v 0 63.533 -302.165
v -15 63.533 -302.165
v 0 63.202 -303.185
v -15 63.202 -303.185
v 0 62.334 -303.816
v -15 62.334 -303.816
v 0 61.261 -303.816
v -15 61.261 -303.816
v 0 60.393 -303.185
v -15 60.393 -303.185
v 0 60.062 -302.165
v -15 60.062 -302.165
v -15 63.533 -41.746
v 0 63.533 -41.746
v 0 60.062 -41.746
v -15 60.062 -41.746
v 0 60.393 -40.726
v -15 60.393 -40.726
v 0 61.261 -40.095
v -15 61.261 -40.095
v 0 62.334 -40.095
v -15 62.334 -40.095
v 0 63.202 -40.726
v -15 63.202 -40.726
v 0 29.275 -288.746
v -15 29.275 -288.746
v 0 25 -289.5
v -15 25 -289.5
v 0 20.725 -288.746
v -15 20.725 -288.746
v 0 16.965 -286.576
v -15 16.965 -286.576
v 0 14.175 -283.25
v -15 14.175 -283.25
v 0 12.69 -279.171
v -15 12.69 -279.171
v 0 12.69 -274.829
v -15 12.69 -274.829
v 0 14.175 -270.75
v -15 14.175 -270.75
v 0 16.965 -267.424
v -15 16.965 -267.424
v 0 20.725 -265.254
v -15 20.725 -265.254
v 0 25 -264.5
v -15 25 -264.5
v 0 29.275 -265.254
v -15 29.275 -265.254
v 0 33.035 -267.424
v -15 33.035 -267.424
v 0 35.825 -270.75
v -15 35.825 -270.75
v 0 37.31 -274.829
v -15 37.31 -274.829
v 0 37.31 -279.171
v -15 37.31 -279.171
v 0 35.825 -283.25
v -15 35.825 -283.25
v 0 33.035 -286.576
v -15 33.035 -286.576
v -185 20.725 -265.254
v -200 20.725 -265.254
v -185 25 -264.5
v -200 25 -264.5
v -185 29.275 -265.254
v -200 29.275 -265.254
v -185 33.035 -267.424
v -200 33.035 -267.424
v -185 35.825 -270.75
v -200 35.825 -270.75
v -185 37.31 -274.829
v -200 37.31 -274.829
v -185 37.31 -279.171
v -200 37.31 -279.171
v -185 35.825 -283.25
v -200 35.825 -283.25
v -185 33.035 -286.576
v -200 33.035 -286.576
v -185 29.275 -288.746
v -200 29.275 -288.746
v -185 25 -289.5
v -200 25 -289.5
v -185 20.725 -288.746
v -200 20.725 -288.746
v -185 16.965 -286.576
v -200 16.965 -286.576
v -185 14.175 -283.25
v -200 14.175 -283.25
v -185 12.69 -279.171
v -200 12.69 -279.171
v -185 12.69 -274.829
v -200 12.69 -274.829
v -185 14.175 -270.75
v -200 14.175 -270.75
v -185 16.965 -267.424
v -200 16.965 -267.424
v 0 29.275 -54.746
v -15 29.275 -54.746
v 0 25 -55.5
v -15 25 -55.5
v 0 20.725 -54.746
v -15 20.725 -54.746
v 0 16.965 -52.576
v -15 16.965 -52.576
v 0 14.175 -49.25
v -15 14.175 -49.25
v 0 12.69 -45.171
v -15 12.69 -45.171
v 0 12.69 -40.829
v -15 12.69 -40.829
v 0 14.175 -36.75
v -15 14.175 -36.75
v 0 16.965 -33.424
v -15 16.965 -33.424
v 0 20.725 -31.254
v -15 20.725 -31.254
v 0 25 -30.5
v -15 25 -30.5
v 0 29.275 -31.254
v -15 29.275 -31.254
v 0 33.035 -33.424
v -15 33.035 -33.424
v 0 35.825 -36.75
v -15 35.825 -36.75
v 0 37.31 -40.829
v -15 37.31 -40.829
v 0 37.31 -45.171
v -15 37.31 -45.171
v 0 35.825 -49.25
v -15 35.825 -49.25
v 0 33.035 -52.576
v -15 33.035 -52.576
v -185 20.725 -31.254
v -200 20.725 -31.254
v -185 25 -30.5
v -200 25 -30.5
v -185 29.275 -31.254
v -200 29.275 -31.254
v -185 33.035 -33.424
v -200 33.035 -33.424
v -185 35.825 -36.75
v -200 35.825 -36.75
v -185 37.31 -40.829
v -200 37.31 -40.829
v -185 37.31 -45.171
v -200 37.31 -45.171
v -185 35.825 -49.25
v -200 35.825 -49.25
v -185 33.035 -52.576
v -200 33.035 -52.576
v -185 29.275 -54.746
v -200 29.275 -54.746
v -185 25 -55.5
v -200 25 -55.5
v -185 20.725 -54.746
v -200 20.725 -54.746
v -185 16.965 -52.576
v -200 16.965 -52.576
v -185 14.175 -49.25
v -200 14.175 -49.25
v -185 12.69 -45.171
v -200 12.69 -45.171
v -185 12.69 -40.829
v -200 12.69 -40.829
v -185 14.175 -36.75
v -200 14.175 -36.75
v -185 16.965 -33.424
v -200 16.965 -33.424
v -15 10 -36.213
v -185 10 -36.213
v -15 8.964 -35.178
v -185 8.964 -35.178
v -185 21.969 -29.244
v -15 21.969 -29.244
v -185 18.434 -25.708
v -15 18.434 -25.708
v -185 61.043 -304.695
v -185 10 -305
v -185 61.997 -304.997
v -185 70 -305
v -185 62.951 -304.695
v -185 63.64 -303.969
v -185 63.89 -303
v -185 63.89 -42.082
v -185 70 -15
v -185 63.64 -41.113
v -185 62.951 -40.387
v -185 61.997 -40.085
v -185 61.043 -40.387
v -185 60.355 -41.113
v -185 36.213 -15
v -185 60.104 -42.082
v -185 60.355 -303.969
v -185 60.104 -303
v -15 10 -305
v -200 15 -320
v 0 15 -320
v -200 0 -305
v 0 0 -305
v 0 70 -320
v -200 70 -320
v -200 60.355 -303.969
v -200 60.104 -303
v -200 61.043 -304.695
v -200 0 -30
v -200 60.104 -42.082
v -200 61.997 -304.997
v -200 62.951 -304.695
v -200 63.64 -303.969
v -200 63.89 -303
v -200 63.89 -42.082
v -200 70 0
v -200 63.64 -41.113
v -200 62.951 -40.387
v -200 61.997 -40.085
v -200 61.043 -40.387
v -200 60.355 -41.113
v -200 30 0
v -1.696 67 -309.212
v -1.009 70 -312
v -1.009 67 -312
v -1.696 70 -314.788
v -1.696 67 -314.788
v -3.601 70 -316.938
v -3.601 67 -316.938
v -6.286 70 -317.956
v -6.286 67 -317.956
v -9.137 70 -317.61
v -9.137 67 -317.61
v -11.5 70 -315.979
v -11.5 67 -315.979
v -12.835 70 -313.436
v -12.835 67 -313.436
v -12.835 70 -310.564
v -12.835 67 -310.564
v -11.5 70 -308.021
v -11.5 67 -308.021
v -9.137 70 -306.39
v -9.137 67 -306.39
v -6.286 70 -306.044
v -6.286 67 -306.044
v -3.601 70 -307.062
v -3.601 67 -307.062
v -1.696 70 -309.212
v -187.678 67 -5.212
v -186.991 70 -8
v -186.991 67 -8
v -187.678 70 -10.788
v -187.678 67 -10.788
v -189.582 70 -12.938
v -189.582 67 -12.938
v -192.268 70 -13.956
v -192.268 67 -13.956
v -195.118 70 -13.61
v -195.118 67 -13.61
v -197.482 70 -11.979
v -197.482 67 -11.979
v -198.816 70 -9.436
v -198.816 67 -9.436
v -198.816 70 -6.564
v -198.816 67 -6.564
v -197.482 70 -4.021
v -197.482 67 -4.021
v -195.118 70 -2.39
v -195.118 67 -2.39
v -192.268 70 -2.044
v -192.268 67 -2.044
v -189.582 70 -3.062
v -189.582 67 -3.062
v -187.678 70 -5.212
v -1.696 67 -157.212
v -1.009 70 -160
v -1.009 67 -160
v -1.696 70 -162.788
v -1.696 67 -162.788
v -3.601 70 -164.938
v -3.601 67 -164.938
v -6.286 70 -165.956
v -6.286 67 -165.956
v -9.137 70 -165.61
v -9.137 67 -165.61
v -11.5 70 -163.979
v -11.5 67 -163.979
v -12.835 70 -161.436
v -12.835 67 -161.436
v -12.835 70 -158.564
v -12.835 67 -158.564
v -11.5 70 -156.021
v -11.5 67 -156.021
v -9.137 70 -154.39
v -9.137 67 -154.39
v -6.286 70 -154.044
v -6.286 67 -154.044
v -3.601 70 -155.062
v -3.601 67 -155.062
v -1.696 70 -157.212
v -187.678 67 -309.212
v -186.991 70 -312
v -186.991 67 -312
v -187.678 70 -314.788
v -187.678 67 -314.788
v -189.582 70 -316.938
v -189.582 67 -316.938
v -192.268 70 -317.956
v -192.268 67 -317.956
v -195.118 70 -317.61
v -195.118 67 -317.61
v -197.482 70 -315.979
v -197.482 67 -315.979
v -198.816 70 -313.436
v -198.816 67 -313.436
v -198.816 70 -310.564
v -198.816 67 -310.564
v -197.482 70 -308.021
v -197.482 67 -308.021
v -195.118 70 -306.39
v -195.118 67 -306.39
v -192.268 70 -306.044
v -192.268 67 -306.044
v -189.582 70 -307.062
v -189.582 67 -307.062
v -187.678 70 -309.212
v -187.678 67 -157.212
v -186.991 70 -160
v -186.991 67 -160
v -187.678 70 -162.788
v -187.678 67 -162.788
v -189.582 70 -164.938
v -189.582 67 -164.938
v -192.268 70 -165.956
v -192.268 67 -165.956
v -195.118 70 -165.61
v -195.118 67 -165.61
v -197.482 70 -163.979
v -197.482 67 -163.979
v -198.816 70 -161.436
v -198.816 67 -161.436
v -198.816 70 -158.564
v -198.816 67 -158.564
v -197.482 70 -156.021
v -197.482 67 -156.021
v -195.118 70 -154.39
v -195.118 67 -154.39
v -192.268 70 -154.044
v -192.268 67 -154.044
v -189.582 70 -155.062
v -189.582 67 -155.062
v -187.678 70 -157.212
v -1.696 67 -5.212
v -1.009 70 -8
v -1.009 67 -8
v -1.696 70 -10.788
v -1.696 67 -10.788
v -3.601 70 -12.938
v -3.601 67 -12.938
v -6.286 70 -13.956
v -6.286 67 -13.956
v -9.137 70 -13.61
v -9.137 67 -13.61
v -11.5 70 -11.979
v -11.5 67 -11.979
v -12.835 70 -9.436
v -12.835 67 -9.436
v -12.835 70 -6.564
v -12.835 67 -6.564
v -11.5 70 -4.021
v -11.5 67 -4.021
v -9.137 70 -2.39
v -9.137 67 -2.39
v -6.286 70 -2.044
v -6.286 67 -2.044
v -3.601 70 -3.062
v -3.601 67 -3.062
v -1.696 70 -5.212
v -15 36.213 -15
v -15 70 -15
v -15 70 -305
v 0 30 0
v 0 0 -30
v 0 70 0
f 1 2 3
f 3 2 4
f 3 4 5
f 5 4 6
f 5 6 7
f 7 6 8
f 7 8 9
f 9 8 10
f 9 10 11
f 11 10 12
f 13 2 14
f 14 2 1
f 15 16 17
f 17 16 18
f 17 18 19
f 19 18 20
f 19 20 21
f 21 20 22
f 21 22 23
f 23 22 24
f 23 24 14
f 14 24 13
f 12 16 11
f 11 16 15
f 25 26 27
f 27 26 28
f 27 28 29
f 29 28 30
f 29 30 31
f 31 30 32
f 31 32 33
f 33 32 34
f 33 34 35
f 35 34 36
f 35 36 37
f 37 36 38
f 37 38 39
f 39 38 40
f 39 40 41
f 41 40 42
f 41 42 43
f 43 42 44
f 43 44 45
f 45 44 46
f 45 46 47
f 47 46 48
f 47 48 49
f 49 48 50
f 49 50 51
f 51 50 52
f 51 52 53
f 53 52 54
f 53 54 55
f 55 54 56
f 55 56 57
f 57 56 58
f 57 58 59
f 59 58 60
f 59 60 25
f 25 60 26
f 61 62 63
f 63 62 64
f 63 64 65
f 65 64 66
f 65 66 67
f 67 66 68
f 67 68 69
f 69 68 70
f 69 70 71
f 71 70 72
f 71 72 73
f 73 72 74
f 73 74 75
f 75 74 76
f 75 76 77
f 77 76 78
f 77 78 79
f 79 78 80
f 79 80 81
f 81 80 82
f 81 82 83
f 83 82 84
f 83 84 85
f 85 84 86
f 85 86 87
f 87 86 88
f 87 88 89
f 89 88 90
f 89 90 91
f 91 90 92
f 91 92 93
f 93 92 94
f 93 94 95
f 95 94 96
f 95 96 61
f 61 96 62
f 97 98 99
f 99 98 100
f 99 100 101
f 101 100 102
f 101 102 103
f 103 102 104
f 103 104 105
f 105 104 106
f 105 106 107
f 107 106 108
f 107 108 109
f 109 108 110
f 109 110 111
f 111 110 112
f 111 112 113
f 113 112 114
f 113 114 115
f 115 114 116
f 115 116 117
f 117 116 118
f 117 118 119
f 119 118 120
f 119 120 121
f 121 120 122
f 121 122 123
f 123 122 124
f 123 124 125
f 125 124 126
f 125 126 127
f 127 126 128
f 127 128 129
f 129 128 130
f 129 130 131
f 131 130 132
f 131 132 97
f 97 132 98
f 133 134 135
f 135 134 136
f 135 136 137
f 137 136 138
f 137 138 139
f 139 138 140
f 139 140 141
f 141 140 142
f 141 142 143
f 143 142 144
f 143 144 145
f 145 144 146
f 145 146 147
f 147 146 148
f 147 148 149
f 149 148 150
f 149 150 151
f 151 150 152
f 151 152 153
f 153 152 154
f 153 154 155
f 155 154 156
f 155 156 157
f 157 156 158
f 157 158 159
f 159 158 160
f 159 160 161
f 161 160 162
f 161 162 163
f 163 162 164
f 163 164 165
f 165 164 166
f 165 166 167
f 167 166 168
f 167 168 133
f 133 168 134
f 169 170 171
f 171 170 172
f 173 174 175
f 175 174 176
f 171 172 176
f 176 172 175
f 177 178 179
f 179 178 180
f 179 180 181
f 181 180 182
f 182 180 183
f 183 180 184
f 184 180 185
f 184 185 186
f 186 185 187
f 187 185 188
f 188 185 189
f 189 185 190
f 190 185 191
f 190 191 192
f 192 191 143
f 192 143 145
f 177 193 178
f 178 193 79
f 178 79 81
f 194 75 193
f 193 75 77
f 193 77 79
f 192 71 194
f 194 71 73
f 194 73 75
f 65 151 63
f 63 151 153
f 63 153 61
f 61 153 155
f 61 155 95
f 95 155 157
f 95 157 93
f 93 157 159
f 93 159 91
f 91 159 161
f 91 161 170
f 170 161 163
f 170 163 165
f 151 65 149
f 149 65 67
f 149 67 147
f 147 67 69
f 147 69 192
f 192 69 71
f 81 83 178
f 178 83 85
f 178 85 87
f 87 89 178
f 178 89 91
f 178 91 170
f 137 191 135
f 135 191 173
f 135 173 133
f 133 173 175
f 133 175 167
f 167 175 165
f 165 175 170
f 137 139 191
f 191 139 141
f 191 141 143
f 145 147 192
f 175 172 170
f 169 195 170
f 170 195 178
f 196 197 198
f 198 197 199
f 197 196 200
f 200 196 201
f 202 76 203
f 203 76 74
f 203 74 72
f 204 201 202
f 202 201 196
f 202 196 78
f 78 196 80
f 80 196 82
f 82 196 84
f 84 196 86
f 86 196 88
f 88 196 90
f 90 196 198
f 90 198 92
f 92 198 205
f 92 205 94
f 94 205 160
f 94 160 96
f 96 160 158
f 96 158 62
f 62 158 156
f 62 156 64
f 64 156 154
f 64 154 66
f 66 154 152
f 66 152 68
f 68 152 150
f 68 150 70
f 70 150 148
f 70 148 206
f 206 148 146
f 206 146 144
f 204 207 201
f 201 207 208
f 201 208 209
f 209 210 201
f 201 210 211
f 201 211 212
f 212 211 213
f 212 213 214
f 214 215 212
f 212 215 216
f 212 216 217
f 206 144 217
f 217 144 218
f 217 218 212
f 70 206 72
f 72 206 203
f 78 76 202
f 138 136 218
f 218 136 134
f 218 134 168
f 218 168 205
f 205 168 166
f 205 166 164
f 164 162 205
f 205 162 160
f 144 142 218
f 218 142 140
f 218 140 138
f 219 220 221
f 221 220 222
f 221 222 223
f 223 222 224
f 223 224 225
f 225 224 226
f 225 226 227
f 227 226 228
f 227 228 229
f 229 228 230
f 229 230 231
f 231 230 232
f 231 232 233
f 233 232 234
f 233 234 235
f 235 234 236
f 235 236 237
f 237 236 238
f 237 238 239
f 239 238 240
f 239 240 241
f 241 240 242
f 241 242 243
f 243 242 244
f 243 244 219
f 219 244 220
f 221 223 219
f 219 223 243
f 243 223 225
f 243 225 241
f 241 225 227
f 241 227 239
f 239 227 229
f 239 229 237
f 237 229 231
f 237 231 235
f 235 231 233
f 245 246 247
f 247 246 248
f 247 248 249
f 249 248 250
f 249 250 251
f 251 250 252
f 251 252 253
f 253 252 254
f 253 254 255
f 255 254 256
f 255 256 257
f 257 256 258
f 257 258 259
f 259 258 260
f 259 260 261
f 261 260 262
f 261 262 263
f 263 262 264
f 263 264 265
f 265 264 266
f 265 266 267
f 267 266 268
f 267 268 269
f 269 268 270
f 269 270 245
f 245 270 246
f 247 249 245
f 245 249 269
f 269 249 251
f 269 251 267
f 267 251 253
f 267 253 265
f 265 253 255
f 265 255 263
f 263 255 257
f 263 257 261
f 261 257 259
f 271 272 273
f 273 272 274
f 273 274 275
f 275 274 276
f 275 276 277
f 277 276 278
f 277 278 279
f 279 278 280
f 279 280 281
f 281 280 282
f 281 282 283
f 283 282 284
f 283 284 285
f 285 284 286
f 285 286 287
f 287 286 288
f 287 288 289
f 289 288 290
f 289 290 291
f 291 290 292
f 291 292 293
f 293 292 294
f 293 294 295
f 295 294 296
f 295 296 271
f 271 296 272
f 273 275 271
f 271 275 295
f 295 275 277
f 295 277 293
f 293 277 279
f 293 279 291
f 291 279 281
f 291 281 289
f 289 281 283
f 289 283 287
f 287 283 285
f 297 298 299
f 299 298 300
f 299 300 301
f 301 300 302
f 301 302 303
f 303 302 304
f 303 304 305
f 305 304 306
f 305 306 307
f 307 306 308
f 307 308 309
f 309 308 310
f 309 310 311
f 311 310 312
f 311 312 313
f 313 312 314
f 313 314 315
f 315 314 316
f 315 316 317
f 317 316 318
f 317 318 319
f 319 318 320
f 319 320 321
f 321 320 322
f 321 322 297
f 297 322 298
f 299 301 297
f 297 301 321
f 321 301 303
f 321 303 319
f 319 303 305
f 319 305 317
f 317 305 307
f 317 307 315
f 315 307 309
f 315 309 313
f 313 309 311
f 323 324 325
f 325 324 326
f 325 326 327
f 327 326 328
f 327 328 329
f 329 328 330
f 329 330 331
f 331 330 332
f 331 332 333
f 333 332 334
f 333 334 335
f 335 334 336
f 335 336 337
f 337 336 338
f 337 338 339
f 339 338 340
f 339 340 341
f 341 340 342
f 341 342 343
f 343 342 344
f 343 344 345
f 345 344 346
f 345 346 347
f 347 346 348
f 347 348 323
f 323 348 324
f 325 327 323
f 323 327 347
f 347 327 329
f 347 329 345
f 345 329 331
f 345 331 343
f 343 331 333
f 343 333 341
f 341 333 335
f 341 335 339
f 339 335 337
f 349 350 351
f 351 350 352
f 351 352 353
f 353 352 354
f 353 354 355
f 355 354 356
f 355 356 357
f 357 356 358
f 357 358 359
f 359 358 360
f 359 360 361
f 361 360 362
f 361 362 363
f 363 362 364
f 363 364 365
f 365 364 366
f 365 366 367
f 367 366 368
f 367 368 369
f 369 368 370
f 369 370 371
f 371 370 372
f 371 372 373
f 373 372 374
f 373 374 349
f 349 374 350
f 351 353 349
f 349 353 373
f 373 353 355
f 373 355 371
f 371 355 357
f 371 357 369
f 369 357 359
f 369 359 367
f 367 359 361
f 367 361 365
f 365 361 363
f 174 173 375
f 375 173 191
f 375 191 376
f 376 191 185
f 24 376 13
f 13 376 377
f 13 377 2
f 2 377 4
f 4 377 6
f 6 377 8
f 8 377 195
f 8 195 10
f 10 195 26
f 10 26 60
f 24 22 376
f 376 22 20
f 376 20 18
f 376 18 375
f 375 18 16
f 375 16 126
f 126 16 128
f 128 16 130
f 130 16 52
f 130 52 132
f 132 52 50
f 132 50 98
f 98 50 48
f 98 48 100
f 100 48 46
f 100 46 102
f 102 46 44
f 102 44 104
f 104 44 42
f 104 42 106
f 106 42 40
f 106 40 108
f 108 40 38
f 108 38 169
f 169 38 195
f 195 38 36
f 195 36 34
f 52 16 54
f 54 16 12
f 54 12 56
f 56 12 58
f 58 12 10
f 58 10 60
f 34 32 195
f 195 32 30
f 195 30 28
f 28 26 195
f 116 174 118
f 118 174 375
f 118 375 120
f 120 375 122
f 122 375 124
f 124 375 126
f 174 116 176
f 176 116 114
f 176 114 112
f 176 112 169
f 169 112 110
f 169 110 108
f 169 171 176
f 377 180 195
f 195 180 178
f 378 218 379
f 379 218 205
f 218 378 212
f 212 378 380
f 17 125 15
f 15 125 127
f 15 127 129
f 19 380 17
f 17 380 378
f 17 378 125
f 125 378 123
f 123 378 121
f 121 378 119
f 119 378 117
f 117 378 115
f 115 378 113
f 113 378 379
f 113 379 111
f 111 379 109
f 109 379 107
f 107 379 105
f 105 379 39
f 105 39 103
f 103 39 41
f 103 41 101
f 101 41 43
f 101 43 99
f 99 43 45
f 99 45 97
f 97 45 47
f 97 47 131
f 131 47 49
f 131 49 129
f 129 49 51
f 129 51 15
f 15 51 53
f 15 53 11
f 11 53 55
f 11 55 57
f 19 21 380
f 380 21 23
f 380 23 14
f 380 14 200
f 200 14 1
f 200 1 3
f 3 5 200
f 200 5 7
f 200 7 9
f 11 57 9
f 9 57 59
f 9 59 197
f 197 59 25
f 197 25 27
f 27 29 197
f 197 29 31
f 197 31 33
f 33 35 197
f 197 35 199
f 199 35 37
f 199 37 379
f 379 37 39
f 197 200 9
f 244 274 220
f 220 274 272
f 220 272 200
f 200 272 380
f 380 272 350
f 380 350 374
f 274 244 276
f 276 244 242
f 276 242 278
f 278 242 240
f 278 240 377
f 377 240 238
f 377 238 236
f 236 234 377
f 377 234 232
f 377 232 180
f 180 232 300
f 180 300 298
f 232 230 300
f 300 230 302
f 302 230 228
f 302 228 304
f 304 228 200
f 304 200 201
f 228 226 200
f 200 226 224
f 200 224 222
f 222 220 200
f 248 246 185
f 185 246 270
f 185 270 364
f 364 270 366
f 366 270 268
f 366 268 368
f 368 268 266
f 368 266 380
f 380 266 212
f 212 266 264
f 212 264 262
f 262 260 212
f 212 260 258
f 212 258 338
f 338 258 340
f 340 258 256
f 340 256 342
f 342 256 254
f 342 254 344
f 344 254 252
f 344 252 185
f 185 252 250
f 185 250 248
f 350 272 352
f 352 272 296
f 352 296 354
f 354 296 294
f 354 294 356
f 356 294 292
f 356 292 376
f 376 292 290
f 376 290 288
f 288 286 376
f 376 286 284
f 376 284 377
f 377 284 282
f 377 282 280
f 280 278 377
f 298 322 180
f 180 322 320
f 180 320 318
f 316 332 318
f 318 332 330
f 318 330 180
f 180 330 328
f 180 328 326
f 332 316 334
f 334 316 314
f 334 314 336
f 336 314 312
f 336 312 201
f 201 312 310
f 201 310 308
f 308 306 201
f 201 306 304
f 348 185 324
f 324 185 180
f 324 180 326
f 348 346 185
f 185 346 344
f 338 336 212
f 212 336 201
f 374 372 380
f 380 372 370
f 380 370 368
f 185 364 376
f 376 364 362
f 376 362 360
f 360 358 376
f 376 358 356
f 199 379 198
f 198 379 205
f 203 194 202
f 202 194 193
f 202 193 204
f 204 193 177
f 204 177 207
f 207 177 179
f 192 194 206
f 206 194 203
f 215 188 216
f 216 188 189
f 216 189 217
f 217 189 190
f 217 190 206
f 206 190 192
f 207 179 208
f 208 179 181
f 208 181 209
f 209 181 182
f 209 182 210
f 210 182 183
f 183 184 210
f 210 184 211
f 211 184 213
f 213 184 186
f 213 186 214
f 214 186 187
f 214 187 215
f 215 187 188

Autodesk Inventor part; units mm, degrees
ref_plane "YZ Plane" through (0, 0, 0) normal (1, 0, 0) x (0, 1, 0)
ref_plane "XZ Plane" through (0, 0, 0) normal (0, 1, 0) x (-1, 0, 0)
ref_plane "XY Plane" through (0, 0, 0) normal (0, 0, 1) x (1, 0, 0)
sketch "Sketch1" plane through (0, 0, 0) normal (0, 1, 0) x (-1, 0, 0)
  line L0 (0, 0) -> (200, 0)
  line L1 (200, 0) -> (200, -320)
  line L2 (200, -320) -> (0, -320)
  line L3 (0, -320) -> (0, 0)
  dimension "d0" = 200
  dimension "d1" = 320
extrude "Extrusion1" add sketch "Sketch1" along normal blind 70
chamfer "Chamfer1" distance 30 angle 45 1 edges at (-100, 0, 0)
shell "Shell1" thickness 15 removed faces 1 at (-66.6667, 70, -106.6667)
sketch "Sketch5" plane through (0, 70, 0) normal (0, 1, 0) x (1, 0, 0)
  circle A0 centre (-192.9908, 160) radius 6
  line L0 (-200, 0) -> (0, 0) projected
  circle A1 centre (-192.9908, 8) radius 6
  circle A2 centre (-192.9908, 312) radius 6
  line L1 (-100, -14.4089) -> (-100, 373.6947) construction
  circle A3 centre (-7.0092, 160) radius 6
  circle A4 centre (-7.0092, 8) radius 6
  circle A5 centre (-7.0092, 312) radius 6
  dimension "d40" = 12
  dimension "d41" = 160
  dimension "d42" = 12
  dimension "d43" = 152
  dimension "d44" = 12
  dimension "d45" = 152
extrude "Extrusion5" cut sketch "Sketch5" against normal blind 3
chamfer "Chamfer2" distance 15 angle 45 1 edges at (-100, 0, -320)
sketch "Sketch6" plane through (0, 70, 0) normal (1, 0, 0) x (0, 0, -1)
  circle A0 centre (43, -45) radius 12.5
  line L0 (0, 0) -> (320, 0) projected
  line L1 (0, -40) -> (0, 0) projected
  line L2 (320, 0) -> (0, 0) projected
  line L3 (160, 0) -> (160, -70) construction
  circle A1 centre (277, -45) radius 12.5
  point P0 (0, -70)
  dimension "d51" = 25
  dimension "d52" = 45
  dimension "d53" = 43
sketch "Sketch8" plane through (-185, 15, -36.2132) normal (0, 1, 0) x (1, 0, 0)
  line L0 (170, 0) -> (170, 268.7868) projected
  line L1 (0, 0) -> (170, 0)
  line L2 (170, 0) -> (170, 268.7868)
  line L3 (170, 268.7868) -> (0, 268.7868)
  line L4 (0, 268.7868) -> (0, 0)
  point P0 (185, -36.2132)
extrude "Extrusion6" cut sketch "Sketch8" against normal blind 5
sketch "Sketch9" plane through (-15, 36.2132, -15) normal (0, 0.7071068, -0.7071068) x (-1, 0, 0)
  line L0 (-0.7971, -12.8149) -> (-1.097, -36.2132)
  line L1 (185, -36.2132) -> (-15, -36.2132) projected
  line L2 (0, -33.5355) -> (170, -33.5355) projected
  line L3 (170, 23.8909) -> (170, -181.1701) projected
  line L4 (0, -33.5355) -> (170, -33.5355)
  line L5 (170, -33.5355) -> (170, -20.1439)
  line L6 (170, -20.1439) -> (0, -20.1439)
  line L7 (0, -20.1439) -> (0, -33.5355)
  point P0 (-15, -15)
extrude "Extrusion7" cut sketch "Sketch9" against normal blind 5
extrude "Extrusion8" cut sketch "Sketch6" against normal blind 220
sketch "Sketch10" plane through (0, 70, -320) normal (0, 0, -1) x (-1, 0, 0)
  point P0 (0, -70)
sketch "Sketch11" plane through (0, 70, -320) normal (0, 0, -1) x (-1, 0, 0)
  point P0 (0, -70)
sketch "Sketch12" plane through (0, 70, 0) normal (0, 1, 0) x (1, 0, 0)
  point P0 (0, 0)
sketch "Sketch13" plane through (0, 70, 0) normal (1, 0, 0) x (0, 0, -1)
  point P0 (0, -70)
sketch "Sketch14" plane through (0, 70, -320) normal (0, 0, -1) x (-1, 0, 0)
  point P0 (0, -70)
sketch "Sketch15" plane through (0, 70, 0) normal (1, 0, 0) x (0, 0, -1)
  point P0 (0, -70)
sketch "Sketch16" plane through (0, 70, 0) normal (1, 0, 0) x (0, 0, -1)
  line L0 (41.7462, -8.2025) -> (302.1648, -8.2025) construction
  line L1 (41.7462, -6.4667) -> (302.1648, -6.4667)
  line L2 (302.1648, -9.9384) -> (41.7462, -9.9384)
  arc A0 (41.7462, -6.4667) -> (41.7462, -9.9384) centre (41.7462, -8.2025) ccw
  arc A1 (302.1648, -9.9384) -> (302.1648, -6.4667) centre (302.1648, -8.2025) ccw
  point P0 (0, -70)
  point P1 (171.9555, -8.2025)
extrude "Extrusion10" cut sketch "Sketch16" against normal blind 20
sketch "Sketch18" plane through (-200, 70, -320) normal (-1, 0, 0) x (0, 0, 1)
  line L0 (15, -60) -> (15, 0) projected
  line L1 (277.9177, -6.1098) -> (17, -6.1098)
  line L2 (15, -8.1098) -> (15, -7.8958)
  line L3 (17, -9.8958) -> (277.9177, -9.8958)
  line L4 (279.9177, -7.8958) -> (279.9177, -8.1098)
  arc A0 (17, -6.1098) -> (15, -8.1098) centre (17, -8.1098) ccw
  arc A1 (15, -7.8958) -> (17, -9.8958) centre (17, -7.8958) ccw
  arc A2 (279.9177, -8.1098) -> (277.9177, -6.1098) centre (277.9177, -8.1098) ccw
  arc A3 (277.9177, -9.8958) -> (279.9177, -7.8958) centre (277.9177, -7.8958) ccw
  point P0 (320, -70)
  point P1 (15, -9.8958)
  point P2 (15.0029, -8.0028)
  point P3 (279.9148, -8.0028)
  dimension "d65" = 2
extrude "Extrusion11" cut sketch "Sketch18" against normal blind 20 contours A0 L1 A2 A3 L3 A1
properties material "ABS Plastic"
